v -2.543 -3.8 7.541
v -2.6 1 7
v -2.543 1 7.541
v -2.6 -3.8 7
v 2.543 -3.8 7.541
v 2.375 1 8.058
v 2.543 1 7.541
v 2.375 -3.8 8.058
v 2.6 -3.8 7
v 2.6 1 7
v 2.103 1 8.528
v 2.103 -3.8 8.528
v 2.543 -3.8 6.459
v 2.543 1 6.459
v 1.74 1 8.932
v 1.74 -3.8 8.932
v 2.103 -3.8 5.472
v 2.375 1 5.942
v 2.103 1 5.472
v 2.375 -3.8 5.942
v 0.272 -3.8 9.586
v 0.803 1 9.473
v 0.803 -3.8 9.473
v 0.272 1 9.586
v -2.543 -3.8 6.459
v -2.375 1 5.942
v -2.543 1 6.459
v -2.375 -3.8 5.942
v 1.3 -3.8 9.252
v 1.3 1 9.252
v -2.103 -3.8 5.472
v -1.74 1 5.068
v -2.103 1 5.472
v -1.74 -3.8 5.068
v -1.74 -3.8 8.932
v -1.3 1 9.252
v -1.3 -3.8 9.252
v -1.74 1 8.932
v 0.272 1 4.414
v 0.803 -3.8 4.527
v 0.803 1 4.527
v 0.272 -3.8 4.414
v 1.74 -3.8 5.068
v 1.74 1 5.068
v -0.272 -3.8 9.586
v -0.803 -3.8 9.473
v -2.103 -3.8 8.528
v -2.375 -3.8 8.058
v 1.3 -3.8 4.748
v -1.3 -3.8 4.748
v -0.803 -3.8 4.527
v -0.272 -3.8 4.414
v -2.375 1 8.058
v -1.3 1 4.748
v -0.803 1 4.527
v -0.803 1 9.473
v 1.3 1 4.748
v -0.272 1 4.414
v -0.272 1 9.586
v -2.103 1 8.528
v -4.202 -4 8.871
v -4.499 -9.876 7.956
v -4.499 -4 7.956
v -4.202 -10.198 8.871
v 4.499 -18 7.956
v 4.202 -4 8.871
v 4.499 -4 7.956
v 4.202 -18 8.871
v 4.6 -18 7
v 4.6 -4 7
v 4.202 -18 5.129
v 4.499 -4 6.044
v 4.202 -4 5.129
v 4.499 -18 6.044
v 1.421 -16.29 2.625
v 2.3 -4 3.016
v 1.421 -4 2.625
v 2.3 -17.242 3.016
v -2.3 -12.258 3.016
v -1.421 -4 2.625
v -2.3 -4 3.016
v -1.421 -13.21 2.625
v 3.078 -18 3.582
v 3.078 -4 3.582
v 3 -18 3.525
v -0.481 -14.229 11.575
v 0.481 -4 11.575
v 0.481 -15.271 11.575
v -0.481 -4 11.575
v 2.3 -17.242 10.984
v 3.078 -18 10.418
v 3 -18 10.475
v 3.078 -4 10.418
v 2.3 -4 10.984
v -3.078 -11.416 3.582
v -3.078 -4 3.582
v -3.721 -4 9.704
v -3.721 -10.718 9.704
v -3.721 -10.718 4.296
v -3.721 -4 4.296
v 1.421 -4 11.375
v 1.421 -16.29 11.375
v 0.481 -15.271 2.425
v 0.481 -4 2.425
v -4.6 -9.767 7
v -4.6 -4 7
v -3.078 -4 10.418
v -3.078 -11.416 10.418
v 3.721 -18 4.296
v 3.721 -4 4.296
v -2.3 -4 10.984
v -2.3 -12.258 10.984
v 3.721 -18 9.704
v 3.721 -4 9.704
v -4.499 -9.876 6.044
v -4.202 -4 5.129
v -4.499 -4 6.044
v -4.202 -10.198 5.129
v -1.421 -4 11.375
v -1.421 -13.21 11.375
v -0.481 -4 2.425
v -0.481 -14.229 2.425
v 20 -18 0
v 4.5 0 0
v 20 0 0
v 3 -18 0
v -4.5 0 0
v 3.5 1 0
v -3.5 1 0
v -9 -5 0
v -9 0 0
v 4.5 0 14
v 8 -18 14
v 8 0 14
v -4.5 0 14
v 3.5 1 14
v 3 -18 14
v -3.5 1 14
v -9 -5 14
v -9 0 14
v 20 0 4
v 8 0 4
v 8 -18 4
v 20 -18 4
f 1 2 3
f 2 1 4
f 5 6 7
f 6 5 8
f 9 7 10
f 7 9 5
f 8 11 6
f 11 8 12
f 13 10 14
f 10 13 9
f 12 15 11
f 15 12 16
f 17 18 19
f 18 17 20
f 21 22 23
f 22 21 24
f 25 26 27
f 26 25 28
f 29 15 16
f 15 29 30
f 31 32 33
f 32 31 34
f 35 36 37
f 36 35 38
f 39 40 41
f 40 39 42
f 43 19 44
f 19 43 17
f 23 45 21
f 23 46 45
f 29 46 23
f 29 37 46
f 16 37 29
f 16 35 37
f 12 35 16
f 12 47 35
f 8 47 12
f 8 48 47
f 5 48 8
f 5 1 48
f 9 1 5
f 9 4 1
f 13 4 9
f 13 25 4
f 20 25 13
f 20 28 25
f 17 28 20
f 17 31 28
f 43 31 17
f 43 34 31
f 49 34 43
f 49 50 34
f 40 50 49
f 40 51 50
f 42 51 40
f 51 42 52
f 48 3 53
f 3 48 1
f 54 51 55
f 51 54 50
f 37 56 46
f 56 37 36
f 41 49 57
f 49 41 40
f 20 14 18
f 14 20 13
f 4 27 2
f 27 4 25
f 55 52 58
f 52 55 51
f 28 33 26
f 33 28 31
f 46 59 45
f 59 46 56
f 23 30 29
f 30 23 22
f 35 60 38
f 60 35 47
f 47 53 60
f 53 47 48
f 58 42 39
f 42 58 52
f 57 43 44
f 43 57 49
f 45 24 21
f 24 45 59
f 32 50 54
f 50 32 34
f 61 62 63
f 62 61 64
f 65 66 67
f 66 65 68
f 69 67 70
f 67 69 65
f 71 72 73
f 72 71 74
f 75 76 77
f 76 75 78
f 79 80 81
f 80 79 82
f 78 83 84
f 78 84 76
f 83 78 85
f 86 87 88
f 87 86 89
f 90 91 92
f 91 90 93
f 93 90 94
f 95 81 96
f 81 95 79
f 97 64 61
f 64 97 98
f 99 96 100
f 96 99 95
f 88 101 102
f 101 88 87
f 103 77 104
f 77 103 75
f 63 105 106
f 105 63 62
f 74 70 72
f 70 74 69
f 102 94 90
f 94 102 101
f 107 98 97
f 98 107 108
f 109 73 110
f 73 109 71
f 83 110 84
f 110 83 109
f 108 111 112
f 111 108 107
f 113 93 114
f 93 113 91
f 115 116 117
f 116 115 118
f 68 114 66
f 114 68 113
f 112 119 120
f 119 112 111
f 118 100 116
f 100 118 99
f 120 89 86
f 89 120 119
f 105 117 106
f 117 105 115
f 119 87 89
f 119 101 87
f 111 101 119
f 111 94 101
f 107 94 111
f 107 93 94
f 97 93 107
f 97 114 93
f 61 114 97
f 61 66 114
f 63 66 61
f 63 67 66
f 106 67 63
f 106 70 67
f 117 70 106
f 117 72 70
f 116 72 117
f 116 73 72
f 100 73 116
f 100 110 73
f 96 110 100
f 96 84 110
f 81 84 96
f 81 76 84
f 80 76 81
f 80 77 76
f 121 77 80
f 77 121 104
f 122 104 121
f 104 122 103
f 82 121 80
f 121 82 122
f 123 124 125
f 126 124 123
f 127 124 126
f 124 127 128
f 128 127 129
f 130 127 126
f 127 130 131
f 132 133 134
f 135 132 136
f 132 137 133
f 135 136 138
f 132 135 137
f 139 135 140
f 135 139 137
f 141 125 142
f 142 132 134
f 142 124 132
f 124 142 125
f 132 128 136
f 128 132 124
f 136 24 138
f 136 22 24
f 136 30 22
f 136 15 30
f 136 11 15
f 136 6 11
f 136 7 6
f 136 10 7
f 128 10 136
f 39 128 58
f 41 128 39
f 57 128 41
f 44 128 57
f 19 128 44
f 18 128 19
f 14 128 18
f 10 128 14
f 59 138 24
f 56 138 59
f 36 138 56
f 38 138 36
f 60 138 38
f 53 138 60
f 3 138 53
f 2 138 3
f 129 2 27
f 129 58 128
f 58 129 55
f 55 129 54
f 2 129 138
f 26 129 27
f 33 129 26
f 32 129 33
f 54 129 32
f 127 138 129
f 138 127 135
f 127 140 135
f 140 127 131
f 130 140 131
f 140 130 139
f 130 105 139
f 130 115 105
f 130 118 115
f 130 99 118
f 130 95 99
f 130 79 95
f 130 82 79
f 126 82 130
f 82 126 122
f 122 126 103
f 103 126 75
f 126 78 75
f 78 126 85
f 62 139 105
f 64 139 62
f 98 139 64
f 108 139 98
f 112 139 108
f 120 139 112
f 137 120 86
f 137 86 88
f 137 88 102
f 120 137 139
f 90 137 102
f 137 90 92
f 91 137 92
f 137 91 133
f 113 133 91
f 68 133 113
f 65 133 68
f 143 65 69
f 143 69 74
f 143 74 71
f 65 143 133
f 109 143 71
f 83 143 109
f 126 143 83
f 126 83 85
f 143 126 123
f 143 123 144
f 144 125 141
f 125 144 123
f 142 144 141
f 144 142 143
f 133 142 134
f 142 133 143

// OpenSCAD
magDia = 8.25; /* incl. slop */
magDep = 3;
partHt = 14;
outerWallThick = 8; /* this is how far we go from center towards outside
                       of the printer */
extension = 12;


difference() {
   linear_extrude(height=partHt) {
      polygon(points=[[-9,0],[-4.5,0],[-3.5,1],[3.5,1],[4.5,0],
                      [outerWallThick+extension,0], [outerWallThick+extension,-18],
                      [3,-18],[-9,-5]]);
   }

   /* cut out the side so that we end up with a lip to hold bottom of panel */
   translate([outerWallThick,-20+1,4]) cube([20,20,20]); 

   /* bolt */
   translate([0,-4,partHt/2]) rotate([90,0,0])
      capBoltHole();
}

module capBoltHole() {
   translate([0,0,-20.2]) cylinder($fn=30,d=5.2,h=20);
   cylinder($fn=30,d=9.2,h=20);
}
